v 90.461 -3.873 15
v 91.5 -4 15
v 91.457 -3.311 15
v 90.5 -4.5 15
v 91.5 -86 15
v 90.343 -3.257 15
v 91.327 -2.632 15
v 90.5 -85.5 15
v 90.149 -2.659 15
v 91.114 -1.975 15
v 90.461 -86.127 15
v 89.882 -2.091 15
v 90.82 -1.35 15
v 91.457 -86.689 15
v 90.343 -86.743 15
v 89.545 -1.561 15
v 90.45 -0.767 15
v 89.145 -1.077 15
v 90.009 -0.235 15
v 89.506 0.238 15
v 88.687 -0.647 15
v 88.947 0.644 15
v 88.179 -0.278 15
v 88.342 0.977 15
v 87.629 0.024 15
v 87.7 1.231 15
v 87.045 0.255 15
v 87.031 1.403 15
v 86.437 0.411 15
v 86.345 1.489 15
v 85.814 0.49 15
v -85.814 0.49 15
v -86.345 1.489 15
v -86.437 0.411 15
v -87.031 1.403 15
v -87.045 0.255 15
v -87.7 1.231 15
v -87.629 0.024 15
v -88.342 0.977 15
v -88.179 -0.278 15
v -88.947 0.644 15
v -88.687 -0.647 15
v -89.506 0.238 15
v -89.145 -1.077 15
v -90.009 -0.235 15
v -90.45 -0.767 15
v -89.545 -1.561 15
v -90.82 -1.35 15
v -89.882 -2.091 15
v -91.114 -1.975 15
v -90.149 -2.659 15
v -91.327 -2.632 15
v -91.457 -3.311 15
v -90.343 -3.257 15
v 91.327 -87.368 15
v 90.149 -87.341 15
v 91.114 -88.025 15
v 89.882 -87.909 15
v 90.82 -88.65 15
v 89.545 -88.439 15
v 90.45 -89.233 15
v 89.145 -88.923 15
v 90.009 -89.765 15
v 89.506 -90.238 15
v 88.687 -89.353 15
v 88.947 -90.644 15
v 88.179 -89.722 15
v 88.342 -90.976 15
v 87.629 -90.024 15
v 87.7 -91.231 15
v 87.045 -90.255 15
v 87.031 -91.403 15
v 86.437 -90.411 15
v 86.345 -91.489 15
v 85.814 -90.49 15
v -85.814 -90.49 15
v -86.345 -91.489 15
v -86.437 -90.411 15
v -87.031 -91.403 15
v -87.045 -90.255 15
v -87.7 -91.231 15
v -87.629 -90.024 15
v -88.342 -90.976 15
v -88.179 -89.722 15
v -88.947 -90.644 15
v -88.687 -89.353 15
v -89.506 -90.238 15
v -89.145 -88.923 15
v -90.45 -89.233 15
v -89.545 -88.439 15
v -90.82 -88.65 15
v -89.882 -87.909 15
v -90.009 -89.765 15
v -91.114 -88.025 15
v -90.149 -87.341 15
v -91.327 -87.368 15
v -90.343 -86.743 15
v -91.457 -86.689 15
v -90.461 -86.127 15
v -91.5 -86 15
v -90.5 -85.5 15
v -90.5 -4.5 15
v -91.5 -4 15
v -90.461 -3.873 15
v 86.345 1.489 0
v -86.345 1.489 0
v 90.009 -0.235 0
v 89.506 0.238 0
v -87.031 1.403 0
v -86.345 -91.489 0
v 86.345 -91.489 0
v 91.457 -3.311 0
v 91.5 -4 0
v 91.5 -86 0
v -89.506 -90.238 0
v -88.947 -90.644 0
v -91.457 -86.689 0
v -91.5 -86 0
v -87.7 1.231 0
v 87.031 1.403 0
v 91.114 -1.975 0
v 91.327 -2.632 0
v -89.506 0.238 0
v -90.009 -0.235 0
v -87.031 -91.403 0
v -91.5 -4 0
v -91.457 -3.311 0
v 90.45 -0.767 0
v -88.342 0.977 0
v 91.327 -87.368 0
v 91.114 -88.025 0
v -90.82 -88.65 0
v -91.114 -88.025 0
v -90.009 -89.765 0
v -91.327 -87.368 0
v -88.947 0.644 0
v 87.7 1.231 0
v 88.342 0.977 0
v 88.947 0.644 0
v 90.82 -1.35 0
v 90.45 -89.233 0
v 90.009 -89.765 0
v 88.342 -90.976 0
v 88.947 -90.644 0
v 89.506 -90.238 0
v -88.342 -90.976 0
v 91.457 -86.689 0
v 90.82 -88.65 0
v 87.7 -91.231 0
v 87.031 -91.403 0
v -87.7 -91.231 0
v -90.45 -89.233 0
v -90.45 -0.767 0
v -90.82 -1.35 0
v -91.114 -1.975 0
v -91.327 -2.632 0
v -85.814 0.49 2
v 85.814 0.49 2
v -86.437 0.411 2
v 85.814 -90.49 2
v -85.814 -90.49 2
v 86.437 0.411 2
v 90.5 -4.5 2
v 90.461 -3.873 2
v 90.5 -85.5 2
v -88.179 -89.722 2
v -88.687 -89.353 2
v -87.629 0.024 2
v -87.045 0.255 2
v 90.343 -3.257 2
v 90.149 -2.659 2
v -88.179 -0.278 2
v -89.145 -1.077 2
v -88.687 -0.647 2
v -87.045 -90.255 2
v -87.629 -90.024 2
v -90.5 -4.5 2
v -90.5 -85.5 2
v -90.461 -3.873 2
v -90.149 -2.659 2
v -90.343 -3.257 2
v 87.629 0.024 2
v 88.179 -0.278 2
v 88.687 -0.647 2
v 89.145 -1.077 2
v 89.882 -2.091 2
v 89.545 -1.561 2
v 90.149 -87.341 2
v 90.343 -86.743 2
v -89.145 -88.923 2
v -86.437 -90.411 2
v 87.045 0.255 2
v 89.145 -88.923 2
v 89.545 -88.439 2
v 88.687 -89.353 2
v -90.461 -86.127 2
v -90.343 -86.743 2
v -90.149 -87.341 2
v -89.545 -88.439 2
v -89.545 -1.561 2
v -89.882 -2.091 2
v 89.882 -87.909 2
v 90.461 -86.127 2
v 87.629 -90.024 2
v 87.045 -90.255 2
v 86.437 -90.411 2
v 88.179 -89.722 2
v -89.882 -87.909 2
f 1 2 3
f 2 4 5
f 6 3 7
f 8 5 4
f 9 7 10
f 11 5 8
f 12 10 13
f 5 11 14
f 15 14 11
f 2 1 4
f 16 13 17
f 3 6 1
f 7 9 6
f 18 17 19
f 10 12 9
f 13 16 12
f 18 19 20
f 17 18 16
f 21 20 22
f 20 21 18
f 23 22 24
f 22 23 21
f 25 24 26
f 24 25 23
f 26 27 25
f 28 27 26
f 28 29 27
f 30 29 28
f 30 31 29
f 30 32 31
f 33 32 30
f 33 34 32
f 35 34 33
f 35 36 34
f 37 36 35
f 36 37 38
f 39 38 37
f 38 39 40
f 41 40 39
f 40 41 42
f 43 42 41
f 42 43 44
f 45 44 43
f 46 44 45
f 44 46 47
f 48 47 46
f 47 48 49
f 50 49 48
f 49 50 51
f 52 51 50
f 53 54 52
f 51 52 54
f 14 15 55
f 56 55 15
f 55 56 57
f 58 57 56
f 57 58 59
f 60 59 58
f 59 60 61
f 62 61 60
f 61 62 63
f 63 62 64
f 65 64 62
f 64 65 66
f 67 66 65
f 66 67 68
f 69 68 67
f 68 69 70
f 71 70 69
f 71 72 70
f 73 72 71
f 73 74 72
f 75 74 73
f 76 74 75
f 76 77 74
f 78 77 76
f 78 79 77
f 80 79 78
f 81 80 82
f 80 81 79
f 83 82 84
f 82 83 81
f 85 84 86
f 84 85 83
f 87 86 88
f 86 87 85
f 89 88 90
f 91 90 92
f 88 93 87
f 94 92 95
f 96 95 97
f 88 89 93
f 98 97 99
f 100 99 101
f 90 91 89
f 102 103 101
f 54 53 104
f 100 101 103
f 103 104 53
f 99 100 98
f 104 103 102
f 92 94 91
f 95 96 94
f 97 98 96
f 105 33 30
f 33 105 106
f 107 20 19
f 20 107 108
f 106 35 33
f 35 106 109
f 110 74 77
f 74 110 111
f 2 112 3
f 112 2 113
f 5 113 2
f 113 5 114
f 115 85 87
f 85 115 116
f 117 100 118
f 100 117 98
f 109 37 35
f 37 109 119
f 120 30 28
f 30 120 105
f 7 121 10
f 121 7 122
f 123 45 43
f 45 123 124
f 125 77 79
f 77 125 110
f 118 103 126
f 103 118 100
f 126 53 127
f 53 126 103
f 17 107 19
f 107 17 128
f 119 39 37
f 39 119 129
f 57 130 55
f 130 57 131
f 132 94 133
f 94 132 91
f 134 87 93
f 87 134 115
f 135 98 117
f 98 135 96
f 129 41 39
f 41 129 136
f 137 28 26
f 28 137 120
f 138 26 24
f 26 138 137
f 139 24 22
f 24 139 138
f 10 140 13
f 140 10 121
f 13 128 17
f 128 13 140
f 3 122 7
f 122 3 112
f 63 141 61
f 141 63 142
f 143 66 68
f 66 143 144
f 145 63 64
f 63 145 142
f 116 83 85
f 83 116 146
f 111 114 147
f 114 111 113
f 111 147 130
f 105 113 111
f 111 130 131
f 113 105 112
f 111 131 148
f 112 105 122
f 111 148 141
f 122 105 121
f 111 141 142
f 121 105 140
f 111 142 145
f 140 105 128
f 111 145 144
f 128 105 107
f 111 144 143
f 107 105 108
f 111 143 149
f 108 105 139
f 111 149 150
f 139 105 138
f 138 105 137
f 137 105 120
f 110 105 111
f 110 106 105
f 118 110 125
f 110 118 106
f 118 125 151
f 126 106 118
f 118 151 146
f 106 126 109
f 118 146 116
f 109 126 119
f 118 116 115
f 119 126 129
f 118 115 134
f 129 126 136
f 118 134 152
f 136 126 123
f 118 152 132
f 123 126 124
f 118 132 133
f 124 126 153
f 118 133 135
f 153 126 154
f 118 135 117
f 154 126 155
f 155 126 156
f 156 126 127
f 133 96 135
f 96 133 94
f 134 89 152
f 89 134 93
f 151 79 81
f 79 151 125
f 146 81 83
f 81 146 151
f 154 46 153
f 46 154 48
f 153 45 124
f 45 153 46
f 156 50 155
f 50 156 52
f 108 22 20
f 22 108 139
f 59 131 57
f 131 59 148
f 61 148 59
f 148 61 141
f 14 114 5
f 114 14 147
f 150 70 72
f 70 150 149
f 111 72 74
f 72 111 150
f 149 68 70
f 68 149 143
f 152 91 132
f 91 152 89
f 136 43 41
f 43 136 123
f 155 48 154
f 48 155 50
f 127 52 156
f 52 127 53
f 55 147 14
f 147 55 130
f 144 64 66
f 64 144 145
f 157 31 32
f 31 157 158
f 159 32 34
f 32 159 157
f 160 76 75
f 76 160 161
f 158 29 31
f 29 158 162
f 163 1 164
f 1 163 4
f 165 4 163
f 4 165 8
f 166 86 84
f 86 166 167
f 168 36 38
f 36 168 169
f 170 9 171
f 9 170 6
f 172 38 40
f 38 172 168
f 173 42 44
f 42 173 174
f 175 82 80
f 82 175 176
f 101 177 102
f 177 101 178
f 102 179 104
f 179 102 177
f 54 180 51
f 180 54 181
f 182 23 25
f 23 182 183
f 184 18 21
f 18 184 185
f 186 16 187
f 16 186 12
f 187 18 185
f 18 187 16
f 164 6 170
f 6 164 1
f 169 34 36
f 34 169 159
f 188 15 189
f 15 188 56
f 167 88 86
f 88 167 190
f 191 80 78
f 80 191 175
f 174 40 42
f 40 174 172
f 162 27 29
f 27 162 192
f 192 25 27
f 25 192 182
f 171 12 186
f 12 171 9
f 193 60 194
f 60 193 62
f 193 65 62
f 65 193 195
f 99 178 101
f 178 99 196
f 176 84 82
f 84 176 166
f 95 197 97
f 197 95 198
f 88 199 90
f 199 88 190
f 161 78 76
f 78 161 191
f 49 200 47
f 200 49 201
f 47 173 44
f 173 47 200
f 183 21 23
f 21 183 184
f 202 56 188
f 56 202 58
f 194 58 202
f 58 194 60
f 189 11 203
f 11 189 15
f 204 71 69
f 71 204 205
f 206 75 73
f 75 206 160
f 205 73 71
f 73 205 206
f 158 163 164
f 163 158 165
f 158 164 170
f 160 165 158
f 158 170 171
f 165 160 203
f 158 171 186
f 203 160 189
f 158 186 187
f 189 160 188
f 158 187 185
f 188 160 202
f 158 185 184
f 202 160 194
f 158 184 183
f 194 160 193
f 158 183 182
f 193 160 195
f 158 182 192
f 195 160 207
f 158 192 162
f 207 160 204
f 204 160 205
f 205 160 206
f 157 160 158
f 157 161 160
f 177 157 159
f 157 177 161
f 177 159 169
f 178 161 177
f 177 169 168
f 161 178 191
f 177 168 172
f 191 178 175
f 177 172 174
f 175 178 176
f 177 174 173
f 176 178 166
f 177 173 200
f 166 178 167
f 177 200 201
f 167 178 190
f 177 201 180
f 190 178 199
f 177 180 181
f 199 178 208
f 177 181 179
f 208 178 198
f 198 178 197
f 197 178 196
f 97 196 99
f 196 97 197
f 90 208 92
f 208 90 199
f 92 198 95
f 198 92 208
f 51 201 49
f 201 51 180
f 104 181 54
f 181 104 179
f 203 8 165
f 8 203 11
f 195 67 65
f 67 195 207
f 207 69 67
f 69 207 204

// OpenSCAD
$fn = 50;


difference() {
	union() {
		translate(v = [0, -45.0000000000, 0]) {
			hull() {
				translate(v = [-86.0000000000, 41.0000000000, 0]) {
					cylinder(h = 15, r = 5.5000000000);
				}
				translate(v = [86.0000000000, 41.0000000000, 0]) {
					cylinder(h = 15, r = 5.5000000000);
				}
				translate(v = [-86.0000000000, -41.0000000000, 0]) {
					cylinder(h = 15, r = 5.5000000000);
				}
				translate(v = [86.0000000000, -41.0000000000, 0]) {
					cylinder(h = 15, r = 5.5000000000);
				}
			}
		}
	}
	union() {
		translate(v = [0, -45.0000000000, 2]) {
			hull() {
				translate(v = [-85.5000000000, 40.5000000000, 0]) {
					cylinder(h = 30, r = 5);
				}
				translate(v = [85.5000000000, 40.5000000000, 0]) {
					cylinder(h = 30, r = 5);
				}
				translate(v = [-85.5000000000, -40.5000000000, 0]) {
					cylinder(h = 30, r = 5);
				}
				translate(v = [85.5000000000, -40.5000000000, 0]) {
					cylinder(h = 30, r = 5);
				}
			}
		}
	}
}
